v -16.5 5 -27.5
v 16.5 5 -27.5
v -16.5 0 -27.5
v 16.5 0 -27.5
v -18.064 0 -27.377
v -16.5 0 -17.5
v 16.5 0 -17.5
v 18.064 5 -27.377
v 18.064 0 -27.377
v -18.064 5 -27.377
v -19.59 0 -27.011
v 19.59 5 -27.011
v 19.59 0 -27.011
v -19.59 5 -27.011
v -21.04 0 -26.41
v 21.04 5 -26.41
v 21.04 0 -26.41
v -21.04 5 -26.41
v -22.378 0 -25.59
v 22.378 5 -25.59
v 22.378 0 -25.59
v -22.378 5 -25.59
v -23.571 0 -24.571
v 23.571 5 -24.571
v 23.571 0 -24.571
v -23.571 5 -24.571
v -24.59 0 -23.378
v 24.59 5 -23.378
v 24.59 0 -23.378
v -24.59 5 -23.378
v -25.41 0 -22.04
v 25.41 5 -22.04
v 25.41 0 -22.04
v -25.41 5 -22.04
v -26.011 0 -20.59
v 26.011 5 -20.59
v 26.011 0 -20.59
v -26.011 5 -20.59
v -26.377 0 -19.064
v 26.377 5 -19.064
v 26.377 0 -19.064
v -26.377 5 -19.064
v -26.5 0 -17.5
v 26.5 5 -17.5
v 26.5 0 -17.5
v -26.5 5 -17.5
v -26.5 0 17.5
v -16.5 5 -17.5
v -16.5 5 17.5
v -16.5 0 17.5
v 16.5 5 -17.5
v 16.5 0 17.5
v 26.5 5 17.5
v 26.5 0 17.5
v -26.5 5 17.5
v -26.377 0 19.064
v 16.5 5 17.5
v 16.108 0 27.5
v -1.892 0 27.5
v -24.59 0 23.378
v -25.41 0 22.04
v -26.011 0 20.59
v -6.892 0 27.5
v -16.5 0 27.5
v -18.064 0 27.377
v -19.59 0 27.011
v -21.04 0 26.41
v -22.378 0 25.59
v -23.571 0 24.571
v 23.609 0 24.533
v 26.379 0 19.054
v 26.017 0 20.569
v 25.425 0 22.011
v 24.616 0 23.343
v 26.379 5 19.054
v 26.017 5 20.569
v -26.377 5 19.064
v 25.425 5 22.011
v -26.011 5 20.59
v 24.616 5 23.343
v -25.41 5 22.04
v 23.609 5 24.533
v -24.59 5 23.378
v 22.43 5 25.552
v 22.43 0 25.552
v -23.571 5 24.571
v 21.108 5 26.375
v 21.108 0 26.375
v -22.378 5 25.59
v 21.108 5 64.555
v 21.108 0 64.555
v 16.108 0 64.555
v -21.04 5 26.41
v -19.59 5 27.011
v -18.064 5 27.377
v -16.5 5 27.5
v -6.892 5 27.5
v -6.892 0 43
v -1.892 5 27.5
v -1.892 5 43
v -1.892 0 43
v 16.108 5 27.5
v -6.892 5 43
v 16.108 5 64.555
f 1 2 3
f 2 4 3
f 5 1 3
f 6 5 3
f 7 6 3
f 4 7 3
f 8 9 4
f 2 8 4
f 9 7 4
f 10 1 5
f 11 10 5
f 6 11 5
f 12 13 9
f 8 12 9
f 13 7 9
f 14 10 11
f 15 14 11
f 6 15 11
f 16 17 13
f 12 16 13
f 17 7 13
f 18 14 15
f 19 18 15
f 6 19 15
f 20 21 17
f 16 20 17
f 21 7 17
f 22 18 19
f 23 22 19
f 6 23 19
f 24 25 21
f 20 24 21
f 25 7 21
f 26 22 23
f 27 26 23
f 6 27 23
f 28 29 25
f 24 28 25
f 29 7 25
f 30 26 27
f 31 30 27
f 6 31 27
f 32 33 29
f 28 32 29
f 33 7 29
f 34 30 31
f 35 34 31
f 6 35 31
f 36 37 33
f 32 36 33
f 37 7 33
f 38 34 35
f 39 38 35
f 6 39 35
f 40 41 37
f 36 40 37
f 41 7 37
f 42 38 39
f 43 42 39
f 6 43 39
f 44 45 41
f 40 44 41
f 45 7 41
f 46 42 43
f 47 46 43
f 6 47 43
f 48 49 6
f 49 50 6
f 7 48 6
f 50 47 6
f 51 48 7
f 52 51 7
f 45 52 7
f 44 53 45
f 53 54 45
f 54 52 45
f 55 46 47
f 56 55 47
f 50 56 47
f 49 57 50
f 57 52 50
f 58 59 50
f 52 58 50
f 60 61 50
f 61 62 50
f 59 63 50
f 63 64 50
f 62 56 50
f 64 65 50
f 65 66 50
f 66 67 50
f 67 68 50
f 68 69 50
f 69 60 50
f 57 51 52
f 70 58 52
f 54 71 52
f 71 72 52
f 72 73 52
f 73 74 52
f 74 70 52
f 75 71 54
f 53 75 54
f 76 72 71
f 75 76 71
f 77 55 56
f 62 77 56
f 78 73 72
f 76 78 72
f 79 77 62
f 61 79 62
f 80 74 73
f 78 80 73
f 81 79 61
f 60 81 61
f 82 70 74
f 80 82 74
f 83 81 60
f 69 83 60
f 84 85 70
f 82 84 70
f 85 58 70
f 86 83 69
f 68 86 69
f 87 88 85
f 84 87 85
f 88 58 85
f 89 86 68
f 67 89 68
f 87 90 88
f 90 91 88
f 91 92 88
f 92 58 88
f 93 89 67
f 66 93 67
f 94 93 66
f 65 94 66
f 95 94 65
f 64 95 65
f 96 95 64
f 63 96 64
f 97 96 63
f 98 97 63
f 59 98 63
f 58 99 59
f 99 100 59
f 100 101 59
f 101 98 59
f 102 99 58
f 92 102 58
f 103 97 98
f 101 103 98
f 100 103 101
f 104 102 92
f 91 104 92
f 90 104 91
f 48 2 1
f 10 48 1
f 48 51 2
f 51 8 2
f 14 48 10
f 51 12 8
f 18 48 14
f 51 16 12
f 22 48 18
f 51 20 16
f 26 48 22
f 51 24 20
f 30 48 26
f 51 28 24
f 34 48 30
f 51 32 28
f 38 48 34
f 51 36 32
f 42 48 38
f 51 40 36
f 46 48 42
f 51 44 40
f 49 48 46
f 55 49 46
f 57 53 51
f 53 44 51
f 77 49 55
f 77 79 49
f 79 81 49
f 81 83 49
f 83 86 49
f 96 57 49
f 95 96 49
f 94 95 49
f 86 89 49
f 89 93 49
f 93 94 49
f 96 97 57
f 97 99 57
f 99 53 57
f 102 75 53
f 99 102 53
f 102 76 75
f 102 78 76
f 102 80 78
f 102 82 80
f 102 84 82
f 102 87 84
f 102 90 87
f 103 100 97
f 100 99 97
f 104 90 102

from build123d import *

# Parameters (mm, degrees)
SKETCH_1_W      = 33
SKETCH_1_H      = 35
SKETCH_1_W_2    = 5
SKETCH_1_H_2    = 40
SKETCH_1_H_3    = 15.5
EXTRUDE_1_DEPTH = 5


with BuildPart() as part:
    # 草圖1 → 填料-伸長1 (new body)
    # profile 1 of 3: a face of its own
    with BuildSketch(Plane(origin=(0, 0, 0), x_dir=(1, 0, 0), z_dir=(0, 1, 0))):
        with BuildLine():
            Line((16.5, -27.5), (-16.5, -27.5))
            ThreePointArc((-16.5, -27.5), (-23.571067812, -24.571067812), (-26.5, -17.5))
            Line((-26.5, -17.5), (-26.5, 17.5))
            ThreePointArc((-26.5, 17.5), (-23.571067812, 24.571067812), (-16.5, 27.5))
            Line((-16.5, 27.5), (16.5, 27.5))
            ThreePointArc((16.5, 27.5), (23.571067812, 24.571067812), (26.5, 17.5))
            Line((26.5, 17.5), (26.5, -17.5))
            ThreePointArc((26.5, -17.5), (23.571067812, -24.571067812), (16.5, -27.5))
        make_face()
        Rectangle(SKETCH_1_W, SKETCH_1_H, mode=Mode.SUBTRACT)
    # profile 2 of 3: a face of its own
    with BuildSketch(Plane(origin=(0, 0, 0), x_dir=(1, 0, 0), z_dir=(0, 1, 0))):
        with Locations((18.607544966, -44.554985824)):
            Rectangle(SKETCH_1_W_2, SKETCH_1_H_2)
    # profile 3 of 3: a face of its own
    with BuildSketch(Plane(origin=(0, 0, 0), x_dir=(1, 0, 0), z_dir=(0, 1, 0))):
        with Locations((-4.392455034, -35.25)):
            Rectangle(SKETCH_1_W_2, SKETCH_1_H_3)
    extrude(amount=EXTRUDE_1_DEPTH)


solid = part.part
